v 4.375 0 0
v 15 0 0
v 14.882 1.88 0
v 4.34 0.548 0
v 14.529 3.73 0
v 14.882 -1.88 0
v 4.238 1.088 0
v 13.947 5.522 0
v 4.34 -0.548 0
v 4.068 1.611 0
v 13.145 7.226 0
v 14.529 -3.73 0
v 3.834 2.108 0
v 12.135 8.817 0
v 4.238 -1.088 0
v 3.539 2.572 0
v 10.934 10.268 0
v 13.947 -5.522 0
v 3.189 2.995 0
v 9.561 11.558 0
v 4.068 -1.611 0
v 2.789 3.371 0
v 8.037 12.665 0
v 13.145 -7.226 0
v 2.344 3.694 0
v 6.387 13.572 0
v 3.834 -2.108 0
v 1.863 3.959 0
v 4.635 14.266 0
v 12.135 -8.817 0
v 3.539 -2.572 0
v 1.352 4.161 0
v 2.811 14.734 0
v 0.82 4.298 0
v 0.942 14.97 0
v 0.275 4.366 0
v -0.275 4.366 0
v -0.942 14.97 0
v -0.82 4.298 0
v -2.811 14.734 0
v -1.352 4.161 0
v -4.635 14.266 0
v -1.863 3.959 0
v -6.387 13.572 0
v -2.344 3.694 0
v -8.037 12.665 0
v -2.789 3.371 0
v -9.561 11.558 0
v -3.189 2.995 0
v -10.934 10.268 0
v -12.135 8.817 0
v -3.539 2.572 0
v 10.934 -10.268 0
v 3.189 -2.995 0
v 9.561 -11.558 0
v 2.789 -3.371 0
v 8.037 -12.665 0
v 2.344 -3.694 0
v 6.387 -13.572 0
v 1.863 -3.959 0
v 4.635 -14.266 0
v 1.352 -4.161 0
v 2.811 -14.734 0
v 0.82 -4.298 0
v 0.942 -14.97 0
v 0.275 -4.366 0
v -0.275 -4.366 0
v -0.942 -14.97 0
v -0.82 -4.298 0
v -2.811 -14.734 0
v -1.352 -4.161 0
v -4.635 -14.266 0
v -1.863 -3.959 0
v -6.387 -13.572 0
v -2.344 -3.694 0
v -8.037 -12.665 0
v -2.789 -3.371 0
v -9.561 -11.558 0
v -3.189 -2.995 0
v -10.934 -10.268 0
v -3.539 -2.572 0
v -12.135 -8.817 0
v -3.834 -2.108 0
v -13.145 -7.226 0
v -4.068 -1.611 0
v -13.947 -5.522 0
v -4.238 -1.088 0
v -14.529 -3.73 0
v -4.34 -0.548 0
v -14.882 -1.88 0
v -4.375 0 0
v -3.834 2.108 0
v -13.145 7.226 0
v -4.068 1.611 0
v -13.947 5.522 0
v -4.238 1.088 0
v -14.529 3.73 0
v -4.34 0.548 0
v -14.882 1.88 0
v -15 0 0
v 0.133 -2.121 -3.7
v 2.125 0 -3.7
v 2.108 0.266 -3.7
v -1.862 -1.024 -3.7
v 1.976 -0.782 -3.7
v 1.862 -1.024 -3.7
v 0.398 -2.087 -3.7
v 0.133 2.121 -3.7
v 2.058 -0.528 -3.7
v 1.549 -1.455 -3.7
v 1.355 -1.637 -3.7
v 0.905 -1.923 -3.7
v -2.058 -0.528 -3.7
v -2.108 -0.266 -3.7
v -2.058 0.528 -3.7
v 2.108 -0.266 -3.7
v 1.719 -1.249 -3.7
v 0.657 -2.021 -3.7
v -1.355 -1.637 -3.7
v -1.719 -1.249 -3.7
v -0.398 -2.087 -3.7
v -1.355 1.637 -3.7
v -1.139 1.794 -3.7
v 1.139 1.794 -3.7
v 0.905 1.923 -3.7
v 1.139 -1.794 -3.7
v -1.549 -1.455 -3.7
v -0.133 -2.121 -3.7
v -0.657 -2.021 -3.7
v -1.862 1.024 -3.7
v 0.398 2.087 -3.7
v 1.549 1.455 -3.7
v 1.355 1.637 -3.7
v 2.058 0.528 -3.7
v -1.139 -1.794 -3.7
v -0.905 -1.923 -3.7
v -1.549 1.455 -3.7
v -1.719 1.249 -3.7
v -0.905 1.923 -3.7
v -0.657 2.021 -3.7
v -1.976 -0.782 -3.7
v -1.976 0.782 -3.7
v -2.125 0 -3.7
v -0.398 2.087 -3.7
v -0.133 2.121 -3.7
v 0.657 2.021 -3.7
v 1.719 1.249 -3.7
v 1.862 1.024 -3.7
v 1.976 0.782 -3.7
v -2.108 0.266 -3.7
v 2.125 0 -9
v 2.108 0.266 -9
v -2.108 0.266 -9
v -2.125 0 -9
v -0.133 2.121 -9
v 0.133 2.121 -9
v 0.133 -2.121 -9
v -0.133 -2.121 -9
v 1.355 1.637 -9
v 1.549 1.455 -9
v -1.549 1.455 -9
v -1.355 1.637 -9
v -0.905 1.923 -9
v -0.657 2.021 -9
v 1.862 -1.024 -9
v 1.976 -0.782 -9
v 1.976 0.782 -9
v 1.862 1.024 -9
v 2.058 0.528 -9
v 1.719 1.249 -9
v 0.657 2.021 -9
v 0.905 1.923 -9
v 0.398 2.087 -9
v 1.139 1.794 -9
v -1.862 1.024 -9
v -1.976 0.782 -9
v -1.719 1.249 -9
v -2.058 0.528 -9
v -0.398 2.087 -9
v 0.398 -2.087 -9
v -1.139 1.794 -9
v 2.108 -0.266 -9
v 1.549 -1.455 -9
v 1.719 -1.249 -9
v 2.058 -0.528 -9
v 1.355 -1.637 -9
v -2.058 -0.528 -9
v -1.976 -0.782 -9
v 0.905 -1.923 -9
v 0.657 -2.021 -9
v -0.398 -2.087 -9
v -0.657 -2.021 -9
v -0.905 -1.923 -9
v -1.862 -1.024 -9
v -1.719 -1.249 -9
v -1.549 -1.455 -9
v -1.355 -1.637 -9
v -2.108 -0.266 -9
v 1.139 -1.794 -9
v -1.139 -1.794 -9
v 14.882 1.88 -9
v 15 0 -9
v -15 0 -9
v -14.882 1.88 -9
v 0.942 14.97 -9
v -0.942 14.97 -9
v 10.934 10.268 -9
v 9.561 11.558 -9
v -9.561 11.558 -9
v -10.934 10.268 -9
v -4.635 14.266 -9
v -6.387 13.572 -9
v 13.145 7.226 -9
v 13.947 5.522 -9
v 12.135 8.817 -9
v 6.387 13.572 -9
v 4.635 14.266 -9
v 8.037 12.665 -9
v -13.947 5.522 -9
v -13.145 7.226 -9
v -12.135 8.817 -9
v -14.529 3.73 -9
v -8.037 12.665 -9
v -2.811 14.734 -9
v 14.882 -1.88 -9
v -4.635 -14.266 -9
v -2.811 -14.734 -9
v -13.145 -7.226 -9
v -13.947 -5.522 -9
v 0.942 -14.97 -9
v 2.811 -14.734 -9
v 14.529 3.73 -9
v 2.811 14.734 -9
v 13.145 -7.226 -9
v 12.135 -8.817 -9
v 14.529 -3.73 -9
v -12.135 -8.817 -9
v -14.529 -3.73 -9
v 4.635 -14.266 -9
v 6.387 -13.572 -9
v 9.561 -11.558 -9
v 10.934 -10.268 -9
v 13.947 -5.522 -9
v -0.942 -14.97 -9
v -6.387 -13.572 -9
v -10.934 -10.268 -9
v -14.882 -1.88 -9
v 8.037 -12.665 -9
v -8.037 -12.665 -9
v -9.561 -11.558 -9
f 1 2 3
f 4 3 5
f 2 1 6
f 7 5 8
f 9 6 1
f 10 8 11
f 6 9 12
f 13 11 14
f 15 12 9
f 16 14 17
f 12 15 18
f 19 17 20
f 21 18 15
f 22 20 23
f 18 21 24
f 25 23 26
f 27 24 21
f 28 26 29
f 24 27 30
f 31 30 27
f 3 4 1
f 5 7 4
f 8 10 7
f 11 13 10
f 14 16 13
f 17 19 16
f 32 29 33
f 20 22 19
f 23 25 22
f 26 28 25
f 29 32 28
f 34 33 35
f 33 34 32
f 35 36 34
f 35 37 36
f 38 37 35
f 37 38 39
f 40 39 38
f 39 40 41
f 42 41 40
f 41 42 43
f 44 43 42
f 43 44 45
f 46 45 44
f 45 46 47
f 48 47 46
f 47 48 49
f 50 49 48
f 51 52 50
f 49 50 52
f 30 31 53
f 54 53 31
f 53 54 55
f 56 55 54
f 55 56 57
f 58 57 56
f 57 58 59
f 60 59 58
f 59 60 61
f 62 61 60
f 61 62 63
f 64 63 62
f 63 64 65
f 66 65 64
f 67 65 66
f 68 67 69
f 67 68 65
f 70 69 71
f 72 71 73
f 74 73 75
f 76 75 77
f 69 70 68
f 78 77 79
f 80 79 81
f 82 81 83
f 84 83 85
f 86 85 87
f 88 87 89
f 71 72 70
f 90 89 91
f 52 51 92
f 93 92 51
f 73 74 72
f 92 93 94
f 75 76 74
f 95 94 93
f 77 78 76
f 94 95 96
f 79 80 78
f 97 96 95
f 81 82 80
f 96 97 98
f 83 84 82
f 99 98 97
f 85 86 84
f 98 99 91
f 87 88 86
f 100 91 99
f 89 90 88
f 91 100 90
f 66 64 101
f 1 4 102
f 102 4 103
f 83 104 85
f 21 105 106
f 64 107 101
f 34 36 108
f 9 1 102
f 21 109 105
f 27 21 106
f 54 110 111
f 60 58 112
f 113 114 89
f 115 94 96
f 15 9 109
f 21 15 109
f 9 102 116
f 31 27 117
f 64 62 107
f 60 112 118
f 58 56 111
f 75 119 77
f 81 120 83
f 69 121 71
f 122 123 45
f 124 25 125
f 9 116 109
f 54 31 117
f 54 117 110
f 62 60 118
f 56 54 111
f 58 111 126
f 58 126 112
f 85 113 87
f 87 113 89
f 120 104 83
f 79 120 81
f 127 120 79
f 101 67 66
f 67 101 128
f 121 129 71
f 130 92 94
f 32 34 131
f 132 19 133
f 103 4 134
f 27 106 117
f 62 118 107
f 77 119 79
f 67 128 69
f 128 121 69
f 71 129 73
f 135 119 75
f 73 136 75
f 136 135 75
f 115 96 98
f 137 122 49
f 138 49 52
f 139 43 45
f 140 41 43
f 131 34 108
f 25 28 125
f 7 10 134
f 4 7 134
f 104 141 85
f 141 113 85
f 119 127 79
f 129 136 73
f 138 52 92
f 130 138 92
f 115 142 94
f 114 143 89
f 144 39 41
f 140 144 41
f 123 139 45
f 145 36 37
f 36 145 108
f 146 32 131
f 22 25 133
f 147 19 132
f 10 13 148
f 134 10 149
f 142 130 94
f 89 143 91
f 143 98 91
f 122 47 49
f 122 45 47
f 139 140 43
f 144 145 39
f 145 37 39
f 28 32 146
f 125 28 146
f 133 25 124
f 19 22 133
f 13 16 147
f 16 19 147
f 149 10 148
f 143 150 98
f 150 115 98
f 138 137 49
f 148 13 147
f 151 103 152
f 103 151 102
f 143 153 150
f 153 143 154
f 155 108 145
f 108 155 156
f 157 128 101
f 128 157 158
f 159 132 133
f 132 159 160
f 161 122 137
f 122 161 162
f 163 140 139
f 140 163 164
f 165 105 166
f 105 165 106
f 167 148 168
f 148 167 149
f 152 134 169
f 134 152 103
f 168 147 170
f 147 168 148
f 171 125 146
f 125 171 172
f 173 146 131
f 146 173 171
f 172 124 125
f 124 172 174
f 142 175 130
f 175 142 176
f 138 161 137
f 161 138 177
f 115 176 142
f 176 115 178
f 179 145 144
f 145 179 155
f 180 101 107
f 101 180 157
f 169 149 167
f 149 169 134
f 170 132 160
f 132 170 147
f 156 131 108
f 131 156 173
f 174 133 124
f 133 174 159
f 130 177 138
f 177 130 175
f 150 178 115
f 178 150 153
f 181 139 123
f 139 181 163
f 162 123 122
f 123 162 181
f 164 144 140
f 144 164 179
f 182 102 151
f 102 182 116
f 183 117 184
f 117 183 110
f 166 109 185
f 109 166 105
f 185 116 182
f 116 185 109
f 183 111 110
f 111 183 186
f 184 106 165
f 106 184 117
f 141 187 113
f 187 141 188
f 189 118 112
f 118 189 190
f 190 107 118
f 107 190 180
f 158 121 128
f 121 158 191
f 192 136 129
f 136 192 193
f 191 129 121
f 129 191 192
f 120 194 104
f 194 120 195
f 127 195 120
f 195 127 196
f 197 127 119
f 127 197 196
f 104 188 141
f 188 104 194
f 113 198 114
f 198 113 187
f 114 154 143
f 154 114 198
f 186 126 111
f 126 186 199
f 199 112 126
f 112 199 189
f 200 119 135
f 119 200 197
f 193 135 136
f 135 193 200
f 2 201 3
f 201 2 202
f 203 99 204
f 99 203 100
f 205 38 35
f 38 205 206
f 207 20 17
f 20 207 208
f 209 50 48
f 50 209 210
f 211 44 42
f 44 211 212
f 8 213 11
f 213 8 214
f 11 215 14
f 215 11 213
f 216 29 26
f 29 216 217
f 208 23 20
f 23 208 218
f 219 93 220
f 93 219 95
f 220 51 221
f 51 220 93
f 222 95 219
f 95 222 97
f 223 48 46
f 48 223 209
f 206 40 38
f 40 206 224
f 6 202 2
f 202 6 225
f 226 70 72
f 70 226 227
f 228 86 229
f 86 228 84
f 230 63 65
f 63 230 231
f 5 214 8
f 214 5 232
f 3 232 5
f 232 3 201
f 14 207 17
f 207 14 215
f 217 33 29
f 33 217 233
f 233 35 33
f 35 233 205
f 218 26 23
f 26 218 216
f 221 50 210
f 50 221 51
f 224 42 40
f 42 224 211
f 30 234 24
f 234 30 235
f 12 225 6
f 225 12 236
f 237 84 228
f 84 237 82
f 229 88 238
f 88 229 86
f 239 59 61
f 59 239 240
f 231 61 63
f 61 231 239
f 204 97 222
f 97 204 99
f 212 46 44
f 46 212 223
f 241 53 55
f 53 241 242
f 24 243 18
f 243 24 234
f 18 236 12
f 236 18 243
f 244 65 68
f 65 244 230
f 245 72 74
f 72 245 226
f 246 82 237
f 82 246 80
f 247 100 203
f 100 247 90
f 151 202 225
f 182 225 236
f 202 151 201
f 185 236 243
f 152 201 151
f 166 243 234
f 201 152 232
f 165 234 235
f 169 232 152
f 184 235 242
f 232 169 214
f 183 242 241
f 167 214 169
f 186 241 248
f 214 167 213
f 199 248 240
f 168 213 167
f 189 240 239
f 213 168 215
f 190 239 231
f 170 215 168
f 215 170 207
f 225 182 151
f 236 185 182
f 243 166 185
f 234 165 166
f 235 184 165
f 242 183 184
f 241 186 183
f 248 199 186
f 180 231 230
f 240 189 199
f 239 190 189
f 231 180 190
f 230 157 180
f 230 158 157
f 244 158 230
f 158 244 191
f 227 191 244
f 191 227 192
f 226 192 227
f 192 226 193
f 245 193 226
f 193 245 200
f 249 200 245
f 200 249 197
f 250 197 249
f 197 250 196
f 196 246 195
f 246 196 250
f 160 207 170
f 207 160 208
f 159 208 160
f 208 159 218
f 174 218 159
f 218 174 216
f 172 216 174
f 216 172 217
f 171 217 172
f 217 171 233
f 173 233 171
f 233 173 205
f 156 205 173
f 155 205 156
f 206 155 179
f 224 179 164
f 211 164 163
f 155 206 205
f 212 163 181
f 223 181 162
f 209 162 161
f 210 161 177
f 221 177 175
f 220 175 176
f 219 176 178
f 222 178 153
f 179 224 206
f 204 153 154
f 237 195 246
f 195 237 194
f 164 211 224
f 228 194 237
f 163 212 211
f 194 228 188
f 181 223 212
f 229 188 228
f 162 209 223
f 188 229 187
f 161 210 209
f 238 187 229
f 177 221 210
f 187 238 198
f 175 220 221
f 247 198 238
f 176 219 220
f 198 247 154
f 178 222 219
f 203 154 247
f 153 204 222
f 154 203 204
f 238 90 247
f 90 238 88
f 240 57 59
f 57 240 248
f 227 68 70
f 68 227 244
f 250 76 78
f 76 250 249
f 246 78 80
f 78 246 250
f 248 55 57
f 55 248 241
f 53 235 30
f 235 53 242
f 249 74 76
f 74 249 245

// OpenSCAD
$fn = 50;


difference() {
	union() {
		translate(v = [0, 0, -9.0000000000]) {
			cylinder(h = 9, r = 15.0000000000);
		}
	}
	union() {
		translate(v = [0, 0, 0]) {
			rotate(a = [0, 0, 0]) {
				difference() {
					union() {
						translate(v = [0, 0, -12.0000000000]) {
							cylinder(h = 12, r = 2.0000000000);
						}
						translate(v = [0, 0, -3.7000000000]) {
							cylinder(h = 3.7000000000, r1 = 2.1250000000, r2 = 4.3750000000);
						}
						translate(v = [0, 0, -12.0000000000]) {
							cylinder(h = 12, r = 2.1250000000);
						}
						translate(v = [0, 0, -12.0000000000]) {
							cylinder(h = 12, r = 2.0000000000);
						}
					}
					union();
				}
			}
		}
	}
}
